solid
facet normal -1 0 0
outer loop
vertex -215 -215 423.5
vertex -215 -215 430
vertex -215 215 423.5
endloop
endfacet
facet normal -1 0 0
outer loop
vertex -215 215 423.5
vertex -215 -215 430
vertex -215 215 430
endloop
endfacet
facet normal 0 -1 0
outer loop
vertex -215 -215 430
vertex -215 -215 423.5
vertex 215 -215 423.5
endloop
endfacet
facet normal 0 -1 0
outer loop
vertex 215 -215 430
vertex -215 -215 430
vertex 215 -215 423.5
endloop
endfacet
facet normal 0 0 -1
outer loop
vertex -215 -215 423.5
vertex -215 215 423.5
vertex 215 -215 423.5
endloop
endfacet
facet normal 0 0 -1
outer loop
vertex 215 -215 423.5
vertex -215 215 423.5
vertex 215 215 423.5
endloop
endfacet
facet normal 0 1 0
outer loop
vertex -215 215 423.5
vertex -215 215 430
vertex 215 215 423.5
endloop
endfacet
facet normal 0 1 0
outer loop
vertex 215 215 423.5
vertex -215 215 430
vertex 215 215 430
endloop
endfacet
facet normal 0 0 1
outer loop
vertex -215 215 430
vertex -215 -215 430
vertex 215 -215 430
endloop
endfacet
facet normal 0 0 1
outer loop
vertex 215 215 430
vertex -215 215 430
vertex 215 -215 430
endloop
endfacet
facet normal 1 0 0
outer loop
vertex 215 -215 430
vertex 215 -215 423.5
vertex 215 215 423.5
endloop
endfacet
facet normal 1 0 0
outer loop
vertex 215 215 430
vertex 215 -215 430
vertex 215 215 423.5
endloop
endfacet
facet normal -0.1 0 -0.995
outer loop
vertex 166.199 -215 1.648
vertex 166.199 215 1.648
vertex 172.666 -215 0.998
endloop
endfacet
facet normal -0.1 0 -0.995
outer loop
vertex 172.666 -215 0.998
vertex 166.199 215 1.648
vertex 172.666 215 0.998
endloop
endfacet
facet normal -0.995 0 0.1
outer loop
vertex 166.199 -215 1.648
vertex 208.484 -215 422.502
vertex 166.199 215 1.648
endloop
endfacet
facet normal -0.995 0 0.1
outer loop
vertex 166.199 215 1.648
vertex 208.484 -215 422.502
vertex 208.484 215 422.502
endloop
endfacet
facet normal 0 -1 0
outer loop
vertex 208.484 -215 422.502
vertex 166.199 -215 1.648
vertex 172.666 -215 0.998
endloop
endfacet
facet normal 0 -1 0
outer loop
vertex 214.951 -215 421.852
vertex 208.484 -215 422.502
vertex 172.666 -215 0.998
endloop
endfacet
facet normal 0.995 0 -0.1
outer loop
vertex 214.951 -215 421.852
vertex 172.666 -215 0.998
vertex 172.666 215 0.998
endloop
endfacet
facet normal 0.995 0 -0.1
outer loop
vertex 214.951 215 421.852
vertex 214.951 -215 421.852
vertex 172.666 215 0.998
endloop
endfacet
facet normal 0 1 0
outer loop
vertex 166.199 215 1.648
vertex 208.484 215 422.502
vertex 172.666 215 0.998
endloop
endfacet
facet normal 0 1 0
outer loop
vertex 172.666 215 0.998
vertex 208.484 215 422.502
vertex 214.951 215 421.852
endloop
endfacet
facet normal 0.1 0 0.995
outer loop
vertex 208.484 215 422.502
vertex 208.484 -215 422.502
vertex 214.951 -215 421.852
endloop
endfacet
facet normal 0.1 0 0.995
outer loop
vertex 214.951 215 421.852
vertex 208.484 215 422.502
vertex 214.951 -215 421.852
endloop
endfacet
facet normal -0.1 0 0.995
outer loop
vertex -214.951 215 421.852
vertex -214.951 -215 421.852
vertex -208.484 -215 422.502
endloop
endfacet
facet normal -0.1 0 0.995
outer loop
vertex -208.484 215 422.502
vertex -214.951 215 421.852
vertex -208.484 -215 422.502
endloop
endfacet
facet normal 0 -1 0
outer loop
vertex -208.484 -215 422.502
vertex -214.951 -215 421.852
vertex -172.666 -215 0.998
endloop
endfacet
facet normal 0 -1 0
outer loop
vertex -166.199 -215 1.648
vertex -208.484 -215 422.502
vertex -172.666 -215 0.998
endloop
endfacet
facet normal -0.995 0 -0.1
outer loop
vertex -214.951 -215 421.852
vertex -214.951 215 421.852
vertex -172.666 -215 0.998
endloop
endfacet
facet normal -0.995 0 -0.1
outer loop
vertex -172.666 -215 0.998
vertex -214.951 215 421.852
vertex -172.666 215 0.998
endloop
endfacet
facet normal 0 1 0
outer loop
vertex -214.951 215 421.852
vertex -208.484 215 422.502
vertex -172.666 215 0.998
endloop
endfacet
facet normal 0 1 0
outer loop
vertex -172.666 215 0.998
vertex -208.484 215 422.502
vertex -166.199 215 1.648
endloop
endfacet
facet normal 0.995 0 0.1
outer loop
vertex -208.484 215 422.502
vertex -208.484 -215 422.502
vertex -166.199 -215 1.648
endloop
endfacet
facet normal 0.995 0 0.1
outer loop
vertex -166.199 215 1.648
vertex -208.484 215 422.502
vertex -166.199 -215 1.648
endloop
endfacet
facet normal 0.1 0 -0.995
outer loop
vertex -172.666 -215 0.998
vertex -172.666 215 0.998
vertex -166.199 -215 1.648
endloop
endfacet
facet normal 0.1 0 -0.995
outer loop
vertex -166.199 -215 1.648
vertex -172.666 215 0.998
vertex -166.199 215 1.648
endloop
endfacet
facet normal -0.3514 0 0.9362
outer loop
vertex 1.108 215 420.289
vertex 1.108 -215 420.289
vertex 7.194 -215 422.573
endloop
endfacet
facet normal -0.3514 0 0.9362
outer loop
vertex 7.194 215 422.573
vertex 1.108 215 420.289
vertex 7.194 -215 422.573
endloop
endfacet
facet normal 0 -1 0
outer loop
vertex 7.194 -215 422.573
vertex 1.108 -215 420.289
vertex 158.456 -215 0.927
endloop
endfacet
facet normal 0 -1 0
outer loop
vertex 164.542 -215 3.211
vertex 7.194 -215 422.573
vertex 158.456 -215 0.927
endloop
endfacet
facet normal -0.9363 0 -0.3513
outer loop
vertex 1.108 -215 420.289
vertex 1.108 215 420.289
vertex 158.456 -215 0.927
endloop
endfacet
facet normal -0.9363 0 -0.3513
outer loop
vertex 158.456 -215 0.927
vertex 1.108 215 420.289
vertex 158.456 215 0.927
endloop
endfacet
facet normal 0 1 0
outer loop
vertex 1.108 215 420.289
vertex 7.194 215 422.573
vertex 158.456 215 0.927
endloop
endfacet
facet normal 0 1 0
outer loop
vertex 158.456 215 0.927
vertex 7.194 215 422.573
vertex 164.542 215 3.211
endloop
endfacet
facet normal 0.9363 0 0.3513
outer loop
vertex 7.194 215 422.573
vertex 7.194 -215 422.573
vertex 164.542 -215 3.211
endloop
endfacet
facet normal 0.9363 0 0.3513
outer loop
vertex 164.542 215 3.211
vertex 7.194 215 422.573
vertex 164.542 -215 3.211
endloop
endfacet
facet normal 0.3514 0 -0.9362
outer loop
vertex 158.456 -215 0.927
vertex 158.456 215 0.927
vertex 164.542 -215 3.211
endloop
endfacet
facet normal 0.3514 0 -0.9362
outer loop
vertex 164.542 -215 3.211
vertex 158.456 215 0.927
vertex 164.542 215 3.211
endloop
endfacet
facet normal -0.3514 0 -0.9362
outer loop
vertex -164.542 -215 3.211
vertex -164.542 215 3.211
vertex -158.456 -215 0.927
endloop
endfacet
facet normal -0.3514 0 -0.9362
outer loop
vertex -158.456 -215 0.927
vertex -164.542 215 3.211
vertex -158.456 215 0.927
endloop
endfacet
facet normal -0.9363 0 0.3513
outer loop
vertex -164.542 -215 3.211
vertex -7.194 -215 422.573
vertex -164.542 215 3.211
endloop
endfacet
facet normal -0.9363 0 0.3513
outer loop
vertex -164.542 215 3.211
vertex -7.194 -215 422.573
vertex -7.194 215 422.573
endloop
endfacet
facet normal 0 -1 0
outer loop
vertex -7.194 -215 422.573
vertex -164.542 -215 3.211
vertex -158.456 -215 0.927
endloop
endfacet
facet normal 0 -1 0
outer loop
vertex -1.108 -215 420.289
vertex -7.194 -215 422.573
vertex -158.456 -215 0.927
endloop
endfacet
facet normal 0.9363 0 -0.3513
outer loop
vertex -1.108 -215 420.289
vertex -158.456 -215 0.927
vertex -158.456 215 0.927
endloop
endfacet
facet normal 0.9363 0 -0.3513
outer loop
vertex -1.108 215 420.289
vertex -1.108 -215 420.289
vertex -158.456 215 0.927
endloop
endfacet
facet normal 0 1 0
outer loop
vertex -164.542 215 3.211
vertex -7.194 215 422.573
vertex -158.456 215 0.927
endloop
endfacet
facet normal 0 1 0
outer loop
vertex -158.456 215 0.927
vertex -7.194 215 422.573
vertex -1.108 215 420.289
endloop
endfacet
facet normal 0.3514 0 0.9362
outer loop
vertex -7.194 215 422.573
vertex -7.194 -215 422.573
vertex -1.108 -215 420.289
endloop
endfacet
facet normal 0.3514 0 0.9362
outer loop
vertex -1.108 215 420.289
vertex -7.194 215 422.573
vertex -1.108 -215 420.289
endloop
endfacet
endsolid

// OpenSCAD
// Bench dimensions
// (mm)
bench_length=430; // [0:1000]
// (mm)
seating_height=430; // [10:80]
// (mm)
seating_depth=430; // [10:80]

// Boards properties
// Jumbo: http://www.jumbo.ch/fileadmin/user_upload/bilder/services/jumbo_service_total/0714_Decoupe_planches_f.pdf
// (mm)
board_thickness=6.5; // [1:20]
// (Boards surfacic price (CHF per square meter). Total price echoed when script is ran through OpenScad)
board_surfacic_price=29.50; // [0:100]
// (kg.m^.3) Total boards weight echoed when script is ran through OpenScad)
volumetric_mass_density=450; // kg.m^.3


/* [Hidden] */

// 3D printing properties
// (mm)
min_unsupported_wall_thickness=1;

// Feet dimensions


// Feet spacing

// Top
// Top-spacing of feet relative to seating_depth
outside_feet_top_spacing_ratio=1;  // [0:1] 
outside_feet_top_spacing=min(seating_depth*outside_feet_top_spacing_ratio,seating_depth-board_thickness);
inside_feet_top_spacing=board_thickness+min_unsupported_wall_thickness; // Depending of way feet are joined to the seating board it might be better to space feet in order to better distribute the weight. Here they are kept together to avoid them sliding toward each other. Spacing is a bit overestimated since it doesn't take angle into account.

// Bottom
outside_feet_bottom_spacing_ratio=.8; 
outside_feet_bottom_spacing=outside_feet_top_spacing*outside_feet_bottom_spacing_ratio;
inside_feet_bottom_spacing=outside_feet_bottom_spacing-2*(board_thickness+min_unsupported_wall_thickness);
average_bottom_spacing=(outside_feet_bottom_spacing+inside_feet_bottom_spacing)/2;

// Lenghts
underseat_height=seating_height-board_thickness;
feet_height=underseat_height-2*min_unsupported_wall_thickness;

outside_feet_length_x=(outside_feet_bottom_spacing-outside_feet_top_spacing)/2;
inside_feet_length_x=(inside_feet_bottom_spacing-inside_feet_top_spacing)/2;

outside_feet_angle=atan(feet_height/outside_feet_length_x);
inside_feet_angle=atan(feet_height/inside_feet_length_x);

outside_offset=cos(outside_feet_angle)*board_thickness/2;
inside_offset=cos(inside_feet_angle)*board_thickness/2;

outside_feet_length=sqrt(pow(outside_feet_length_x,2)+pow(feet_height,2))-2*outside_offset;
inside_feet_length=sqrt(pow(inside_feet_length_x,2)+pow(feet_height,2))-2*inside_offset;


module boards(){

	//Seating board
	color("yellow")
	translate([0,0,(seating_height-board_thickness/2)])
	cube([seating_depth,bench_length,board_thickness],center=true);


	//Feet

	// Right outside foot
	color("green")
	translate([(outside_feet_length_x+outside_feet_top_spacing)/2,0,underseat_height/2])
	rotate([0,outside_feet_angle,0])
	cube([outside_feet_length,bench_length,board_thickness],center=true);

	// Left outside foot
	color("red")
	translate([-(outside_feet_length_x+outside_feet_top_spacing)/2,0,underseat_height/2])
	rotate([0,-outside_feet_angle,0])
	cube([outside_feet_length,bench_length,board_thickness],center=true);

	// Right inside foot
	color("purple")
	translate([(inside_feet_length_x+inside_feet_top_spacing)/2,0,underseat_height/2])
	rotate([0,inside_feet_angle,0])
	cube([inside_feet_length,bench_length,board_thickness],center=true);

	// Left inside foot
	color("blue")
	translate([-(inside_feet_length_x+inside_feet_top_spacing)/2,0,underseat_height/2])
	rotate([0,-inside_feet_angle,0])
	cube([inside_feet_length,bench_length,board_thickness],center=true);
}

board_width = seating_depth + 2*(outside_feet_length+inside_feet_length);

module board(){
	translate([feet_bottom_spacing+board_width/2,0,0])
	square([board_width,bench_length],center=true);
}

//Joint
joint_length=20; //mm
joinery_offset_lengthwise=min_unsupported_wall_thickness; //mm
joinery_thickness=min_unsupported_wall_thickness; //mm
feet_joint_height=.025*outside_feet_length+min_unsupported_wall_thickness;


module foot_bottom_joinery(){
	a=[-board_thickness-joinery_thickness,0];
	b=[-board_thickness-joinery_thickness-feet_joint_height/tan(inside_feet_angle),feet_joint_height];
	c=[board_thickness+joinery_thickness-feet_joint_height/tan(outside_feet_angle),feet_joint_height];
	d=[board_thickness+joinery_thickness,0];
	
	translate([average_bottom_spacing/2,-bench_length/2+joint_length,0])
	rotate([90,0,0])
	
	linear_extrude(joint_length+joinery_offset_lengthwise)
	polygon([a,b,c,d]);
}

module foot_top_outside_joinery(){
	a=[-joinery_thickness,joinery_thickness];
	b=[board_thickness+joinery_thickness,joinery_thickness];
	c=[board_thickness+joinery_thickness,-board_thickness-min_unsupported_wall_thickness];
	d=[board_thickness+joinery_thickness-feet_joint_height/tan(outside_feet_angle),-feet_joint_height-board_thickness];
	e=[-joinery_thickness-feet_joint_height/tan(outside_feet_angle),-feet_joint_height-board_thickness];
	f=[-joinery_thickness,-board_thickness-min_unsupported_wall_thickness];
	translate([-seating_depth/2,-bench_length/2+joint_length,seating_height])
	rotate([90,0,0])
	
	linear_extrude(joint_length+joinery_offset_lengthwise)
	polygon([a,b,c,d,e,f]);

}

module feet_top_joinery(){
	foot_top_outside_joinery();
	mirror([0,1,0]) foot_top_outside_joinery();
	mirror([1,0,0]) foot_top_outside_joinery();
	mirror([0,1,0]) mirror([1,0,0]) foot_top_outside_joinery();
}


module feet_bottom_joinery(){
	foot_bottom_joinery();
	mirror([0,1,0]) foot_bottom_joinery();
	mirror([1,0,0]) foot_bottom_joinery();
	mirror([0,1,0]) mirror([1,0,0]) foot_bottom_joinery();
}


module foot_bottom_joinery_only(){
	difference(){
		foot_bottom_joinery();
		boards();
	}
}
// foot_bottom_joinery_only();

module foot_top_outside_joinery_only(){
	difference(){
		foot_top_outside_joinery();
		boards();
	}
}
// foot_top_outside_joinery_only();

module bench(){
	% feet_bottom_joinery();
	% feet_top_joinery();
	boards();
}

bench();




//Surface, weight & price
surface = bench_length * board_width / 1000000;
price = surface * board_surfacic_price;
volume = surface * board_thickness / 1000;
weight = volume * volumetric_mass_density;

echo(Section_m=board_width/1000);
echo(Surface_m2=surface);
echo(Price_fr=price);
echo(Weight_kg=weight);
